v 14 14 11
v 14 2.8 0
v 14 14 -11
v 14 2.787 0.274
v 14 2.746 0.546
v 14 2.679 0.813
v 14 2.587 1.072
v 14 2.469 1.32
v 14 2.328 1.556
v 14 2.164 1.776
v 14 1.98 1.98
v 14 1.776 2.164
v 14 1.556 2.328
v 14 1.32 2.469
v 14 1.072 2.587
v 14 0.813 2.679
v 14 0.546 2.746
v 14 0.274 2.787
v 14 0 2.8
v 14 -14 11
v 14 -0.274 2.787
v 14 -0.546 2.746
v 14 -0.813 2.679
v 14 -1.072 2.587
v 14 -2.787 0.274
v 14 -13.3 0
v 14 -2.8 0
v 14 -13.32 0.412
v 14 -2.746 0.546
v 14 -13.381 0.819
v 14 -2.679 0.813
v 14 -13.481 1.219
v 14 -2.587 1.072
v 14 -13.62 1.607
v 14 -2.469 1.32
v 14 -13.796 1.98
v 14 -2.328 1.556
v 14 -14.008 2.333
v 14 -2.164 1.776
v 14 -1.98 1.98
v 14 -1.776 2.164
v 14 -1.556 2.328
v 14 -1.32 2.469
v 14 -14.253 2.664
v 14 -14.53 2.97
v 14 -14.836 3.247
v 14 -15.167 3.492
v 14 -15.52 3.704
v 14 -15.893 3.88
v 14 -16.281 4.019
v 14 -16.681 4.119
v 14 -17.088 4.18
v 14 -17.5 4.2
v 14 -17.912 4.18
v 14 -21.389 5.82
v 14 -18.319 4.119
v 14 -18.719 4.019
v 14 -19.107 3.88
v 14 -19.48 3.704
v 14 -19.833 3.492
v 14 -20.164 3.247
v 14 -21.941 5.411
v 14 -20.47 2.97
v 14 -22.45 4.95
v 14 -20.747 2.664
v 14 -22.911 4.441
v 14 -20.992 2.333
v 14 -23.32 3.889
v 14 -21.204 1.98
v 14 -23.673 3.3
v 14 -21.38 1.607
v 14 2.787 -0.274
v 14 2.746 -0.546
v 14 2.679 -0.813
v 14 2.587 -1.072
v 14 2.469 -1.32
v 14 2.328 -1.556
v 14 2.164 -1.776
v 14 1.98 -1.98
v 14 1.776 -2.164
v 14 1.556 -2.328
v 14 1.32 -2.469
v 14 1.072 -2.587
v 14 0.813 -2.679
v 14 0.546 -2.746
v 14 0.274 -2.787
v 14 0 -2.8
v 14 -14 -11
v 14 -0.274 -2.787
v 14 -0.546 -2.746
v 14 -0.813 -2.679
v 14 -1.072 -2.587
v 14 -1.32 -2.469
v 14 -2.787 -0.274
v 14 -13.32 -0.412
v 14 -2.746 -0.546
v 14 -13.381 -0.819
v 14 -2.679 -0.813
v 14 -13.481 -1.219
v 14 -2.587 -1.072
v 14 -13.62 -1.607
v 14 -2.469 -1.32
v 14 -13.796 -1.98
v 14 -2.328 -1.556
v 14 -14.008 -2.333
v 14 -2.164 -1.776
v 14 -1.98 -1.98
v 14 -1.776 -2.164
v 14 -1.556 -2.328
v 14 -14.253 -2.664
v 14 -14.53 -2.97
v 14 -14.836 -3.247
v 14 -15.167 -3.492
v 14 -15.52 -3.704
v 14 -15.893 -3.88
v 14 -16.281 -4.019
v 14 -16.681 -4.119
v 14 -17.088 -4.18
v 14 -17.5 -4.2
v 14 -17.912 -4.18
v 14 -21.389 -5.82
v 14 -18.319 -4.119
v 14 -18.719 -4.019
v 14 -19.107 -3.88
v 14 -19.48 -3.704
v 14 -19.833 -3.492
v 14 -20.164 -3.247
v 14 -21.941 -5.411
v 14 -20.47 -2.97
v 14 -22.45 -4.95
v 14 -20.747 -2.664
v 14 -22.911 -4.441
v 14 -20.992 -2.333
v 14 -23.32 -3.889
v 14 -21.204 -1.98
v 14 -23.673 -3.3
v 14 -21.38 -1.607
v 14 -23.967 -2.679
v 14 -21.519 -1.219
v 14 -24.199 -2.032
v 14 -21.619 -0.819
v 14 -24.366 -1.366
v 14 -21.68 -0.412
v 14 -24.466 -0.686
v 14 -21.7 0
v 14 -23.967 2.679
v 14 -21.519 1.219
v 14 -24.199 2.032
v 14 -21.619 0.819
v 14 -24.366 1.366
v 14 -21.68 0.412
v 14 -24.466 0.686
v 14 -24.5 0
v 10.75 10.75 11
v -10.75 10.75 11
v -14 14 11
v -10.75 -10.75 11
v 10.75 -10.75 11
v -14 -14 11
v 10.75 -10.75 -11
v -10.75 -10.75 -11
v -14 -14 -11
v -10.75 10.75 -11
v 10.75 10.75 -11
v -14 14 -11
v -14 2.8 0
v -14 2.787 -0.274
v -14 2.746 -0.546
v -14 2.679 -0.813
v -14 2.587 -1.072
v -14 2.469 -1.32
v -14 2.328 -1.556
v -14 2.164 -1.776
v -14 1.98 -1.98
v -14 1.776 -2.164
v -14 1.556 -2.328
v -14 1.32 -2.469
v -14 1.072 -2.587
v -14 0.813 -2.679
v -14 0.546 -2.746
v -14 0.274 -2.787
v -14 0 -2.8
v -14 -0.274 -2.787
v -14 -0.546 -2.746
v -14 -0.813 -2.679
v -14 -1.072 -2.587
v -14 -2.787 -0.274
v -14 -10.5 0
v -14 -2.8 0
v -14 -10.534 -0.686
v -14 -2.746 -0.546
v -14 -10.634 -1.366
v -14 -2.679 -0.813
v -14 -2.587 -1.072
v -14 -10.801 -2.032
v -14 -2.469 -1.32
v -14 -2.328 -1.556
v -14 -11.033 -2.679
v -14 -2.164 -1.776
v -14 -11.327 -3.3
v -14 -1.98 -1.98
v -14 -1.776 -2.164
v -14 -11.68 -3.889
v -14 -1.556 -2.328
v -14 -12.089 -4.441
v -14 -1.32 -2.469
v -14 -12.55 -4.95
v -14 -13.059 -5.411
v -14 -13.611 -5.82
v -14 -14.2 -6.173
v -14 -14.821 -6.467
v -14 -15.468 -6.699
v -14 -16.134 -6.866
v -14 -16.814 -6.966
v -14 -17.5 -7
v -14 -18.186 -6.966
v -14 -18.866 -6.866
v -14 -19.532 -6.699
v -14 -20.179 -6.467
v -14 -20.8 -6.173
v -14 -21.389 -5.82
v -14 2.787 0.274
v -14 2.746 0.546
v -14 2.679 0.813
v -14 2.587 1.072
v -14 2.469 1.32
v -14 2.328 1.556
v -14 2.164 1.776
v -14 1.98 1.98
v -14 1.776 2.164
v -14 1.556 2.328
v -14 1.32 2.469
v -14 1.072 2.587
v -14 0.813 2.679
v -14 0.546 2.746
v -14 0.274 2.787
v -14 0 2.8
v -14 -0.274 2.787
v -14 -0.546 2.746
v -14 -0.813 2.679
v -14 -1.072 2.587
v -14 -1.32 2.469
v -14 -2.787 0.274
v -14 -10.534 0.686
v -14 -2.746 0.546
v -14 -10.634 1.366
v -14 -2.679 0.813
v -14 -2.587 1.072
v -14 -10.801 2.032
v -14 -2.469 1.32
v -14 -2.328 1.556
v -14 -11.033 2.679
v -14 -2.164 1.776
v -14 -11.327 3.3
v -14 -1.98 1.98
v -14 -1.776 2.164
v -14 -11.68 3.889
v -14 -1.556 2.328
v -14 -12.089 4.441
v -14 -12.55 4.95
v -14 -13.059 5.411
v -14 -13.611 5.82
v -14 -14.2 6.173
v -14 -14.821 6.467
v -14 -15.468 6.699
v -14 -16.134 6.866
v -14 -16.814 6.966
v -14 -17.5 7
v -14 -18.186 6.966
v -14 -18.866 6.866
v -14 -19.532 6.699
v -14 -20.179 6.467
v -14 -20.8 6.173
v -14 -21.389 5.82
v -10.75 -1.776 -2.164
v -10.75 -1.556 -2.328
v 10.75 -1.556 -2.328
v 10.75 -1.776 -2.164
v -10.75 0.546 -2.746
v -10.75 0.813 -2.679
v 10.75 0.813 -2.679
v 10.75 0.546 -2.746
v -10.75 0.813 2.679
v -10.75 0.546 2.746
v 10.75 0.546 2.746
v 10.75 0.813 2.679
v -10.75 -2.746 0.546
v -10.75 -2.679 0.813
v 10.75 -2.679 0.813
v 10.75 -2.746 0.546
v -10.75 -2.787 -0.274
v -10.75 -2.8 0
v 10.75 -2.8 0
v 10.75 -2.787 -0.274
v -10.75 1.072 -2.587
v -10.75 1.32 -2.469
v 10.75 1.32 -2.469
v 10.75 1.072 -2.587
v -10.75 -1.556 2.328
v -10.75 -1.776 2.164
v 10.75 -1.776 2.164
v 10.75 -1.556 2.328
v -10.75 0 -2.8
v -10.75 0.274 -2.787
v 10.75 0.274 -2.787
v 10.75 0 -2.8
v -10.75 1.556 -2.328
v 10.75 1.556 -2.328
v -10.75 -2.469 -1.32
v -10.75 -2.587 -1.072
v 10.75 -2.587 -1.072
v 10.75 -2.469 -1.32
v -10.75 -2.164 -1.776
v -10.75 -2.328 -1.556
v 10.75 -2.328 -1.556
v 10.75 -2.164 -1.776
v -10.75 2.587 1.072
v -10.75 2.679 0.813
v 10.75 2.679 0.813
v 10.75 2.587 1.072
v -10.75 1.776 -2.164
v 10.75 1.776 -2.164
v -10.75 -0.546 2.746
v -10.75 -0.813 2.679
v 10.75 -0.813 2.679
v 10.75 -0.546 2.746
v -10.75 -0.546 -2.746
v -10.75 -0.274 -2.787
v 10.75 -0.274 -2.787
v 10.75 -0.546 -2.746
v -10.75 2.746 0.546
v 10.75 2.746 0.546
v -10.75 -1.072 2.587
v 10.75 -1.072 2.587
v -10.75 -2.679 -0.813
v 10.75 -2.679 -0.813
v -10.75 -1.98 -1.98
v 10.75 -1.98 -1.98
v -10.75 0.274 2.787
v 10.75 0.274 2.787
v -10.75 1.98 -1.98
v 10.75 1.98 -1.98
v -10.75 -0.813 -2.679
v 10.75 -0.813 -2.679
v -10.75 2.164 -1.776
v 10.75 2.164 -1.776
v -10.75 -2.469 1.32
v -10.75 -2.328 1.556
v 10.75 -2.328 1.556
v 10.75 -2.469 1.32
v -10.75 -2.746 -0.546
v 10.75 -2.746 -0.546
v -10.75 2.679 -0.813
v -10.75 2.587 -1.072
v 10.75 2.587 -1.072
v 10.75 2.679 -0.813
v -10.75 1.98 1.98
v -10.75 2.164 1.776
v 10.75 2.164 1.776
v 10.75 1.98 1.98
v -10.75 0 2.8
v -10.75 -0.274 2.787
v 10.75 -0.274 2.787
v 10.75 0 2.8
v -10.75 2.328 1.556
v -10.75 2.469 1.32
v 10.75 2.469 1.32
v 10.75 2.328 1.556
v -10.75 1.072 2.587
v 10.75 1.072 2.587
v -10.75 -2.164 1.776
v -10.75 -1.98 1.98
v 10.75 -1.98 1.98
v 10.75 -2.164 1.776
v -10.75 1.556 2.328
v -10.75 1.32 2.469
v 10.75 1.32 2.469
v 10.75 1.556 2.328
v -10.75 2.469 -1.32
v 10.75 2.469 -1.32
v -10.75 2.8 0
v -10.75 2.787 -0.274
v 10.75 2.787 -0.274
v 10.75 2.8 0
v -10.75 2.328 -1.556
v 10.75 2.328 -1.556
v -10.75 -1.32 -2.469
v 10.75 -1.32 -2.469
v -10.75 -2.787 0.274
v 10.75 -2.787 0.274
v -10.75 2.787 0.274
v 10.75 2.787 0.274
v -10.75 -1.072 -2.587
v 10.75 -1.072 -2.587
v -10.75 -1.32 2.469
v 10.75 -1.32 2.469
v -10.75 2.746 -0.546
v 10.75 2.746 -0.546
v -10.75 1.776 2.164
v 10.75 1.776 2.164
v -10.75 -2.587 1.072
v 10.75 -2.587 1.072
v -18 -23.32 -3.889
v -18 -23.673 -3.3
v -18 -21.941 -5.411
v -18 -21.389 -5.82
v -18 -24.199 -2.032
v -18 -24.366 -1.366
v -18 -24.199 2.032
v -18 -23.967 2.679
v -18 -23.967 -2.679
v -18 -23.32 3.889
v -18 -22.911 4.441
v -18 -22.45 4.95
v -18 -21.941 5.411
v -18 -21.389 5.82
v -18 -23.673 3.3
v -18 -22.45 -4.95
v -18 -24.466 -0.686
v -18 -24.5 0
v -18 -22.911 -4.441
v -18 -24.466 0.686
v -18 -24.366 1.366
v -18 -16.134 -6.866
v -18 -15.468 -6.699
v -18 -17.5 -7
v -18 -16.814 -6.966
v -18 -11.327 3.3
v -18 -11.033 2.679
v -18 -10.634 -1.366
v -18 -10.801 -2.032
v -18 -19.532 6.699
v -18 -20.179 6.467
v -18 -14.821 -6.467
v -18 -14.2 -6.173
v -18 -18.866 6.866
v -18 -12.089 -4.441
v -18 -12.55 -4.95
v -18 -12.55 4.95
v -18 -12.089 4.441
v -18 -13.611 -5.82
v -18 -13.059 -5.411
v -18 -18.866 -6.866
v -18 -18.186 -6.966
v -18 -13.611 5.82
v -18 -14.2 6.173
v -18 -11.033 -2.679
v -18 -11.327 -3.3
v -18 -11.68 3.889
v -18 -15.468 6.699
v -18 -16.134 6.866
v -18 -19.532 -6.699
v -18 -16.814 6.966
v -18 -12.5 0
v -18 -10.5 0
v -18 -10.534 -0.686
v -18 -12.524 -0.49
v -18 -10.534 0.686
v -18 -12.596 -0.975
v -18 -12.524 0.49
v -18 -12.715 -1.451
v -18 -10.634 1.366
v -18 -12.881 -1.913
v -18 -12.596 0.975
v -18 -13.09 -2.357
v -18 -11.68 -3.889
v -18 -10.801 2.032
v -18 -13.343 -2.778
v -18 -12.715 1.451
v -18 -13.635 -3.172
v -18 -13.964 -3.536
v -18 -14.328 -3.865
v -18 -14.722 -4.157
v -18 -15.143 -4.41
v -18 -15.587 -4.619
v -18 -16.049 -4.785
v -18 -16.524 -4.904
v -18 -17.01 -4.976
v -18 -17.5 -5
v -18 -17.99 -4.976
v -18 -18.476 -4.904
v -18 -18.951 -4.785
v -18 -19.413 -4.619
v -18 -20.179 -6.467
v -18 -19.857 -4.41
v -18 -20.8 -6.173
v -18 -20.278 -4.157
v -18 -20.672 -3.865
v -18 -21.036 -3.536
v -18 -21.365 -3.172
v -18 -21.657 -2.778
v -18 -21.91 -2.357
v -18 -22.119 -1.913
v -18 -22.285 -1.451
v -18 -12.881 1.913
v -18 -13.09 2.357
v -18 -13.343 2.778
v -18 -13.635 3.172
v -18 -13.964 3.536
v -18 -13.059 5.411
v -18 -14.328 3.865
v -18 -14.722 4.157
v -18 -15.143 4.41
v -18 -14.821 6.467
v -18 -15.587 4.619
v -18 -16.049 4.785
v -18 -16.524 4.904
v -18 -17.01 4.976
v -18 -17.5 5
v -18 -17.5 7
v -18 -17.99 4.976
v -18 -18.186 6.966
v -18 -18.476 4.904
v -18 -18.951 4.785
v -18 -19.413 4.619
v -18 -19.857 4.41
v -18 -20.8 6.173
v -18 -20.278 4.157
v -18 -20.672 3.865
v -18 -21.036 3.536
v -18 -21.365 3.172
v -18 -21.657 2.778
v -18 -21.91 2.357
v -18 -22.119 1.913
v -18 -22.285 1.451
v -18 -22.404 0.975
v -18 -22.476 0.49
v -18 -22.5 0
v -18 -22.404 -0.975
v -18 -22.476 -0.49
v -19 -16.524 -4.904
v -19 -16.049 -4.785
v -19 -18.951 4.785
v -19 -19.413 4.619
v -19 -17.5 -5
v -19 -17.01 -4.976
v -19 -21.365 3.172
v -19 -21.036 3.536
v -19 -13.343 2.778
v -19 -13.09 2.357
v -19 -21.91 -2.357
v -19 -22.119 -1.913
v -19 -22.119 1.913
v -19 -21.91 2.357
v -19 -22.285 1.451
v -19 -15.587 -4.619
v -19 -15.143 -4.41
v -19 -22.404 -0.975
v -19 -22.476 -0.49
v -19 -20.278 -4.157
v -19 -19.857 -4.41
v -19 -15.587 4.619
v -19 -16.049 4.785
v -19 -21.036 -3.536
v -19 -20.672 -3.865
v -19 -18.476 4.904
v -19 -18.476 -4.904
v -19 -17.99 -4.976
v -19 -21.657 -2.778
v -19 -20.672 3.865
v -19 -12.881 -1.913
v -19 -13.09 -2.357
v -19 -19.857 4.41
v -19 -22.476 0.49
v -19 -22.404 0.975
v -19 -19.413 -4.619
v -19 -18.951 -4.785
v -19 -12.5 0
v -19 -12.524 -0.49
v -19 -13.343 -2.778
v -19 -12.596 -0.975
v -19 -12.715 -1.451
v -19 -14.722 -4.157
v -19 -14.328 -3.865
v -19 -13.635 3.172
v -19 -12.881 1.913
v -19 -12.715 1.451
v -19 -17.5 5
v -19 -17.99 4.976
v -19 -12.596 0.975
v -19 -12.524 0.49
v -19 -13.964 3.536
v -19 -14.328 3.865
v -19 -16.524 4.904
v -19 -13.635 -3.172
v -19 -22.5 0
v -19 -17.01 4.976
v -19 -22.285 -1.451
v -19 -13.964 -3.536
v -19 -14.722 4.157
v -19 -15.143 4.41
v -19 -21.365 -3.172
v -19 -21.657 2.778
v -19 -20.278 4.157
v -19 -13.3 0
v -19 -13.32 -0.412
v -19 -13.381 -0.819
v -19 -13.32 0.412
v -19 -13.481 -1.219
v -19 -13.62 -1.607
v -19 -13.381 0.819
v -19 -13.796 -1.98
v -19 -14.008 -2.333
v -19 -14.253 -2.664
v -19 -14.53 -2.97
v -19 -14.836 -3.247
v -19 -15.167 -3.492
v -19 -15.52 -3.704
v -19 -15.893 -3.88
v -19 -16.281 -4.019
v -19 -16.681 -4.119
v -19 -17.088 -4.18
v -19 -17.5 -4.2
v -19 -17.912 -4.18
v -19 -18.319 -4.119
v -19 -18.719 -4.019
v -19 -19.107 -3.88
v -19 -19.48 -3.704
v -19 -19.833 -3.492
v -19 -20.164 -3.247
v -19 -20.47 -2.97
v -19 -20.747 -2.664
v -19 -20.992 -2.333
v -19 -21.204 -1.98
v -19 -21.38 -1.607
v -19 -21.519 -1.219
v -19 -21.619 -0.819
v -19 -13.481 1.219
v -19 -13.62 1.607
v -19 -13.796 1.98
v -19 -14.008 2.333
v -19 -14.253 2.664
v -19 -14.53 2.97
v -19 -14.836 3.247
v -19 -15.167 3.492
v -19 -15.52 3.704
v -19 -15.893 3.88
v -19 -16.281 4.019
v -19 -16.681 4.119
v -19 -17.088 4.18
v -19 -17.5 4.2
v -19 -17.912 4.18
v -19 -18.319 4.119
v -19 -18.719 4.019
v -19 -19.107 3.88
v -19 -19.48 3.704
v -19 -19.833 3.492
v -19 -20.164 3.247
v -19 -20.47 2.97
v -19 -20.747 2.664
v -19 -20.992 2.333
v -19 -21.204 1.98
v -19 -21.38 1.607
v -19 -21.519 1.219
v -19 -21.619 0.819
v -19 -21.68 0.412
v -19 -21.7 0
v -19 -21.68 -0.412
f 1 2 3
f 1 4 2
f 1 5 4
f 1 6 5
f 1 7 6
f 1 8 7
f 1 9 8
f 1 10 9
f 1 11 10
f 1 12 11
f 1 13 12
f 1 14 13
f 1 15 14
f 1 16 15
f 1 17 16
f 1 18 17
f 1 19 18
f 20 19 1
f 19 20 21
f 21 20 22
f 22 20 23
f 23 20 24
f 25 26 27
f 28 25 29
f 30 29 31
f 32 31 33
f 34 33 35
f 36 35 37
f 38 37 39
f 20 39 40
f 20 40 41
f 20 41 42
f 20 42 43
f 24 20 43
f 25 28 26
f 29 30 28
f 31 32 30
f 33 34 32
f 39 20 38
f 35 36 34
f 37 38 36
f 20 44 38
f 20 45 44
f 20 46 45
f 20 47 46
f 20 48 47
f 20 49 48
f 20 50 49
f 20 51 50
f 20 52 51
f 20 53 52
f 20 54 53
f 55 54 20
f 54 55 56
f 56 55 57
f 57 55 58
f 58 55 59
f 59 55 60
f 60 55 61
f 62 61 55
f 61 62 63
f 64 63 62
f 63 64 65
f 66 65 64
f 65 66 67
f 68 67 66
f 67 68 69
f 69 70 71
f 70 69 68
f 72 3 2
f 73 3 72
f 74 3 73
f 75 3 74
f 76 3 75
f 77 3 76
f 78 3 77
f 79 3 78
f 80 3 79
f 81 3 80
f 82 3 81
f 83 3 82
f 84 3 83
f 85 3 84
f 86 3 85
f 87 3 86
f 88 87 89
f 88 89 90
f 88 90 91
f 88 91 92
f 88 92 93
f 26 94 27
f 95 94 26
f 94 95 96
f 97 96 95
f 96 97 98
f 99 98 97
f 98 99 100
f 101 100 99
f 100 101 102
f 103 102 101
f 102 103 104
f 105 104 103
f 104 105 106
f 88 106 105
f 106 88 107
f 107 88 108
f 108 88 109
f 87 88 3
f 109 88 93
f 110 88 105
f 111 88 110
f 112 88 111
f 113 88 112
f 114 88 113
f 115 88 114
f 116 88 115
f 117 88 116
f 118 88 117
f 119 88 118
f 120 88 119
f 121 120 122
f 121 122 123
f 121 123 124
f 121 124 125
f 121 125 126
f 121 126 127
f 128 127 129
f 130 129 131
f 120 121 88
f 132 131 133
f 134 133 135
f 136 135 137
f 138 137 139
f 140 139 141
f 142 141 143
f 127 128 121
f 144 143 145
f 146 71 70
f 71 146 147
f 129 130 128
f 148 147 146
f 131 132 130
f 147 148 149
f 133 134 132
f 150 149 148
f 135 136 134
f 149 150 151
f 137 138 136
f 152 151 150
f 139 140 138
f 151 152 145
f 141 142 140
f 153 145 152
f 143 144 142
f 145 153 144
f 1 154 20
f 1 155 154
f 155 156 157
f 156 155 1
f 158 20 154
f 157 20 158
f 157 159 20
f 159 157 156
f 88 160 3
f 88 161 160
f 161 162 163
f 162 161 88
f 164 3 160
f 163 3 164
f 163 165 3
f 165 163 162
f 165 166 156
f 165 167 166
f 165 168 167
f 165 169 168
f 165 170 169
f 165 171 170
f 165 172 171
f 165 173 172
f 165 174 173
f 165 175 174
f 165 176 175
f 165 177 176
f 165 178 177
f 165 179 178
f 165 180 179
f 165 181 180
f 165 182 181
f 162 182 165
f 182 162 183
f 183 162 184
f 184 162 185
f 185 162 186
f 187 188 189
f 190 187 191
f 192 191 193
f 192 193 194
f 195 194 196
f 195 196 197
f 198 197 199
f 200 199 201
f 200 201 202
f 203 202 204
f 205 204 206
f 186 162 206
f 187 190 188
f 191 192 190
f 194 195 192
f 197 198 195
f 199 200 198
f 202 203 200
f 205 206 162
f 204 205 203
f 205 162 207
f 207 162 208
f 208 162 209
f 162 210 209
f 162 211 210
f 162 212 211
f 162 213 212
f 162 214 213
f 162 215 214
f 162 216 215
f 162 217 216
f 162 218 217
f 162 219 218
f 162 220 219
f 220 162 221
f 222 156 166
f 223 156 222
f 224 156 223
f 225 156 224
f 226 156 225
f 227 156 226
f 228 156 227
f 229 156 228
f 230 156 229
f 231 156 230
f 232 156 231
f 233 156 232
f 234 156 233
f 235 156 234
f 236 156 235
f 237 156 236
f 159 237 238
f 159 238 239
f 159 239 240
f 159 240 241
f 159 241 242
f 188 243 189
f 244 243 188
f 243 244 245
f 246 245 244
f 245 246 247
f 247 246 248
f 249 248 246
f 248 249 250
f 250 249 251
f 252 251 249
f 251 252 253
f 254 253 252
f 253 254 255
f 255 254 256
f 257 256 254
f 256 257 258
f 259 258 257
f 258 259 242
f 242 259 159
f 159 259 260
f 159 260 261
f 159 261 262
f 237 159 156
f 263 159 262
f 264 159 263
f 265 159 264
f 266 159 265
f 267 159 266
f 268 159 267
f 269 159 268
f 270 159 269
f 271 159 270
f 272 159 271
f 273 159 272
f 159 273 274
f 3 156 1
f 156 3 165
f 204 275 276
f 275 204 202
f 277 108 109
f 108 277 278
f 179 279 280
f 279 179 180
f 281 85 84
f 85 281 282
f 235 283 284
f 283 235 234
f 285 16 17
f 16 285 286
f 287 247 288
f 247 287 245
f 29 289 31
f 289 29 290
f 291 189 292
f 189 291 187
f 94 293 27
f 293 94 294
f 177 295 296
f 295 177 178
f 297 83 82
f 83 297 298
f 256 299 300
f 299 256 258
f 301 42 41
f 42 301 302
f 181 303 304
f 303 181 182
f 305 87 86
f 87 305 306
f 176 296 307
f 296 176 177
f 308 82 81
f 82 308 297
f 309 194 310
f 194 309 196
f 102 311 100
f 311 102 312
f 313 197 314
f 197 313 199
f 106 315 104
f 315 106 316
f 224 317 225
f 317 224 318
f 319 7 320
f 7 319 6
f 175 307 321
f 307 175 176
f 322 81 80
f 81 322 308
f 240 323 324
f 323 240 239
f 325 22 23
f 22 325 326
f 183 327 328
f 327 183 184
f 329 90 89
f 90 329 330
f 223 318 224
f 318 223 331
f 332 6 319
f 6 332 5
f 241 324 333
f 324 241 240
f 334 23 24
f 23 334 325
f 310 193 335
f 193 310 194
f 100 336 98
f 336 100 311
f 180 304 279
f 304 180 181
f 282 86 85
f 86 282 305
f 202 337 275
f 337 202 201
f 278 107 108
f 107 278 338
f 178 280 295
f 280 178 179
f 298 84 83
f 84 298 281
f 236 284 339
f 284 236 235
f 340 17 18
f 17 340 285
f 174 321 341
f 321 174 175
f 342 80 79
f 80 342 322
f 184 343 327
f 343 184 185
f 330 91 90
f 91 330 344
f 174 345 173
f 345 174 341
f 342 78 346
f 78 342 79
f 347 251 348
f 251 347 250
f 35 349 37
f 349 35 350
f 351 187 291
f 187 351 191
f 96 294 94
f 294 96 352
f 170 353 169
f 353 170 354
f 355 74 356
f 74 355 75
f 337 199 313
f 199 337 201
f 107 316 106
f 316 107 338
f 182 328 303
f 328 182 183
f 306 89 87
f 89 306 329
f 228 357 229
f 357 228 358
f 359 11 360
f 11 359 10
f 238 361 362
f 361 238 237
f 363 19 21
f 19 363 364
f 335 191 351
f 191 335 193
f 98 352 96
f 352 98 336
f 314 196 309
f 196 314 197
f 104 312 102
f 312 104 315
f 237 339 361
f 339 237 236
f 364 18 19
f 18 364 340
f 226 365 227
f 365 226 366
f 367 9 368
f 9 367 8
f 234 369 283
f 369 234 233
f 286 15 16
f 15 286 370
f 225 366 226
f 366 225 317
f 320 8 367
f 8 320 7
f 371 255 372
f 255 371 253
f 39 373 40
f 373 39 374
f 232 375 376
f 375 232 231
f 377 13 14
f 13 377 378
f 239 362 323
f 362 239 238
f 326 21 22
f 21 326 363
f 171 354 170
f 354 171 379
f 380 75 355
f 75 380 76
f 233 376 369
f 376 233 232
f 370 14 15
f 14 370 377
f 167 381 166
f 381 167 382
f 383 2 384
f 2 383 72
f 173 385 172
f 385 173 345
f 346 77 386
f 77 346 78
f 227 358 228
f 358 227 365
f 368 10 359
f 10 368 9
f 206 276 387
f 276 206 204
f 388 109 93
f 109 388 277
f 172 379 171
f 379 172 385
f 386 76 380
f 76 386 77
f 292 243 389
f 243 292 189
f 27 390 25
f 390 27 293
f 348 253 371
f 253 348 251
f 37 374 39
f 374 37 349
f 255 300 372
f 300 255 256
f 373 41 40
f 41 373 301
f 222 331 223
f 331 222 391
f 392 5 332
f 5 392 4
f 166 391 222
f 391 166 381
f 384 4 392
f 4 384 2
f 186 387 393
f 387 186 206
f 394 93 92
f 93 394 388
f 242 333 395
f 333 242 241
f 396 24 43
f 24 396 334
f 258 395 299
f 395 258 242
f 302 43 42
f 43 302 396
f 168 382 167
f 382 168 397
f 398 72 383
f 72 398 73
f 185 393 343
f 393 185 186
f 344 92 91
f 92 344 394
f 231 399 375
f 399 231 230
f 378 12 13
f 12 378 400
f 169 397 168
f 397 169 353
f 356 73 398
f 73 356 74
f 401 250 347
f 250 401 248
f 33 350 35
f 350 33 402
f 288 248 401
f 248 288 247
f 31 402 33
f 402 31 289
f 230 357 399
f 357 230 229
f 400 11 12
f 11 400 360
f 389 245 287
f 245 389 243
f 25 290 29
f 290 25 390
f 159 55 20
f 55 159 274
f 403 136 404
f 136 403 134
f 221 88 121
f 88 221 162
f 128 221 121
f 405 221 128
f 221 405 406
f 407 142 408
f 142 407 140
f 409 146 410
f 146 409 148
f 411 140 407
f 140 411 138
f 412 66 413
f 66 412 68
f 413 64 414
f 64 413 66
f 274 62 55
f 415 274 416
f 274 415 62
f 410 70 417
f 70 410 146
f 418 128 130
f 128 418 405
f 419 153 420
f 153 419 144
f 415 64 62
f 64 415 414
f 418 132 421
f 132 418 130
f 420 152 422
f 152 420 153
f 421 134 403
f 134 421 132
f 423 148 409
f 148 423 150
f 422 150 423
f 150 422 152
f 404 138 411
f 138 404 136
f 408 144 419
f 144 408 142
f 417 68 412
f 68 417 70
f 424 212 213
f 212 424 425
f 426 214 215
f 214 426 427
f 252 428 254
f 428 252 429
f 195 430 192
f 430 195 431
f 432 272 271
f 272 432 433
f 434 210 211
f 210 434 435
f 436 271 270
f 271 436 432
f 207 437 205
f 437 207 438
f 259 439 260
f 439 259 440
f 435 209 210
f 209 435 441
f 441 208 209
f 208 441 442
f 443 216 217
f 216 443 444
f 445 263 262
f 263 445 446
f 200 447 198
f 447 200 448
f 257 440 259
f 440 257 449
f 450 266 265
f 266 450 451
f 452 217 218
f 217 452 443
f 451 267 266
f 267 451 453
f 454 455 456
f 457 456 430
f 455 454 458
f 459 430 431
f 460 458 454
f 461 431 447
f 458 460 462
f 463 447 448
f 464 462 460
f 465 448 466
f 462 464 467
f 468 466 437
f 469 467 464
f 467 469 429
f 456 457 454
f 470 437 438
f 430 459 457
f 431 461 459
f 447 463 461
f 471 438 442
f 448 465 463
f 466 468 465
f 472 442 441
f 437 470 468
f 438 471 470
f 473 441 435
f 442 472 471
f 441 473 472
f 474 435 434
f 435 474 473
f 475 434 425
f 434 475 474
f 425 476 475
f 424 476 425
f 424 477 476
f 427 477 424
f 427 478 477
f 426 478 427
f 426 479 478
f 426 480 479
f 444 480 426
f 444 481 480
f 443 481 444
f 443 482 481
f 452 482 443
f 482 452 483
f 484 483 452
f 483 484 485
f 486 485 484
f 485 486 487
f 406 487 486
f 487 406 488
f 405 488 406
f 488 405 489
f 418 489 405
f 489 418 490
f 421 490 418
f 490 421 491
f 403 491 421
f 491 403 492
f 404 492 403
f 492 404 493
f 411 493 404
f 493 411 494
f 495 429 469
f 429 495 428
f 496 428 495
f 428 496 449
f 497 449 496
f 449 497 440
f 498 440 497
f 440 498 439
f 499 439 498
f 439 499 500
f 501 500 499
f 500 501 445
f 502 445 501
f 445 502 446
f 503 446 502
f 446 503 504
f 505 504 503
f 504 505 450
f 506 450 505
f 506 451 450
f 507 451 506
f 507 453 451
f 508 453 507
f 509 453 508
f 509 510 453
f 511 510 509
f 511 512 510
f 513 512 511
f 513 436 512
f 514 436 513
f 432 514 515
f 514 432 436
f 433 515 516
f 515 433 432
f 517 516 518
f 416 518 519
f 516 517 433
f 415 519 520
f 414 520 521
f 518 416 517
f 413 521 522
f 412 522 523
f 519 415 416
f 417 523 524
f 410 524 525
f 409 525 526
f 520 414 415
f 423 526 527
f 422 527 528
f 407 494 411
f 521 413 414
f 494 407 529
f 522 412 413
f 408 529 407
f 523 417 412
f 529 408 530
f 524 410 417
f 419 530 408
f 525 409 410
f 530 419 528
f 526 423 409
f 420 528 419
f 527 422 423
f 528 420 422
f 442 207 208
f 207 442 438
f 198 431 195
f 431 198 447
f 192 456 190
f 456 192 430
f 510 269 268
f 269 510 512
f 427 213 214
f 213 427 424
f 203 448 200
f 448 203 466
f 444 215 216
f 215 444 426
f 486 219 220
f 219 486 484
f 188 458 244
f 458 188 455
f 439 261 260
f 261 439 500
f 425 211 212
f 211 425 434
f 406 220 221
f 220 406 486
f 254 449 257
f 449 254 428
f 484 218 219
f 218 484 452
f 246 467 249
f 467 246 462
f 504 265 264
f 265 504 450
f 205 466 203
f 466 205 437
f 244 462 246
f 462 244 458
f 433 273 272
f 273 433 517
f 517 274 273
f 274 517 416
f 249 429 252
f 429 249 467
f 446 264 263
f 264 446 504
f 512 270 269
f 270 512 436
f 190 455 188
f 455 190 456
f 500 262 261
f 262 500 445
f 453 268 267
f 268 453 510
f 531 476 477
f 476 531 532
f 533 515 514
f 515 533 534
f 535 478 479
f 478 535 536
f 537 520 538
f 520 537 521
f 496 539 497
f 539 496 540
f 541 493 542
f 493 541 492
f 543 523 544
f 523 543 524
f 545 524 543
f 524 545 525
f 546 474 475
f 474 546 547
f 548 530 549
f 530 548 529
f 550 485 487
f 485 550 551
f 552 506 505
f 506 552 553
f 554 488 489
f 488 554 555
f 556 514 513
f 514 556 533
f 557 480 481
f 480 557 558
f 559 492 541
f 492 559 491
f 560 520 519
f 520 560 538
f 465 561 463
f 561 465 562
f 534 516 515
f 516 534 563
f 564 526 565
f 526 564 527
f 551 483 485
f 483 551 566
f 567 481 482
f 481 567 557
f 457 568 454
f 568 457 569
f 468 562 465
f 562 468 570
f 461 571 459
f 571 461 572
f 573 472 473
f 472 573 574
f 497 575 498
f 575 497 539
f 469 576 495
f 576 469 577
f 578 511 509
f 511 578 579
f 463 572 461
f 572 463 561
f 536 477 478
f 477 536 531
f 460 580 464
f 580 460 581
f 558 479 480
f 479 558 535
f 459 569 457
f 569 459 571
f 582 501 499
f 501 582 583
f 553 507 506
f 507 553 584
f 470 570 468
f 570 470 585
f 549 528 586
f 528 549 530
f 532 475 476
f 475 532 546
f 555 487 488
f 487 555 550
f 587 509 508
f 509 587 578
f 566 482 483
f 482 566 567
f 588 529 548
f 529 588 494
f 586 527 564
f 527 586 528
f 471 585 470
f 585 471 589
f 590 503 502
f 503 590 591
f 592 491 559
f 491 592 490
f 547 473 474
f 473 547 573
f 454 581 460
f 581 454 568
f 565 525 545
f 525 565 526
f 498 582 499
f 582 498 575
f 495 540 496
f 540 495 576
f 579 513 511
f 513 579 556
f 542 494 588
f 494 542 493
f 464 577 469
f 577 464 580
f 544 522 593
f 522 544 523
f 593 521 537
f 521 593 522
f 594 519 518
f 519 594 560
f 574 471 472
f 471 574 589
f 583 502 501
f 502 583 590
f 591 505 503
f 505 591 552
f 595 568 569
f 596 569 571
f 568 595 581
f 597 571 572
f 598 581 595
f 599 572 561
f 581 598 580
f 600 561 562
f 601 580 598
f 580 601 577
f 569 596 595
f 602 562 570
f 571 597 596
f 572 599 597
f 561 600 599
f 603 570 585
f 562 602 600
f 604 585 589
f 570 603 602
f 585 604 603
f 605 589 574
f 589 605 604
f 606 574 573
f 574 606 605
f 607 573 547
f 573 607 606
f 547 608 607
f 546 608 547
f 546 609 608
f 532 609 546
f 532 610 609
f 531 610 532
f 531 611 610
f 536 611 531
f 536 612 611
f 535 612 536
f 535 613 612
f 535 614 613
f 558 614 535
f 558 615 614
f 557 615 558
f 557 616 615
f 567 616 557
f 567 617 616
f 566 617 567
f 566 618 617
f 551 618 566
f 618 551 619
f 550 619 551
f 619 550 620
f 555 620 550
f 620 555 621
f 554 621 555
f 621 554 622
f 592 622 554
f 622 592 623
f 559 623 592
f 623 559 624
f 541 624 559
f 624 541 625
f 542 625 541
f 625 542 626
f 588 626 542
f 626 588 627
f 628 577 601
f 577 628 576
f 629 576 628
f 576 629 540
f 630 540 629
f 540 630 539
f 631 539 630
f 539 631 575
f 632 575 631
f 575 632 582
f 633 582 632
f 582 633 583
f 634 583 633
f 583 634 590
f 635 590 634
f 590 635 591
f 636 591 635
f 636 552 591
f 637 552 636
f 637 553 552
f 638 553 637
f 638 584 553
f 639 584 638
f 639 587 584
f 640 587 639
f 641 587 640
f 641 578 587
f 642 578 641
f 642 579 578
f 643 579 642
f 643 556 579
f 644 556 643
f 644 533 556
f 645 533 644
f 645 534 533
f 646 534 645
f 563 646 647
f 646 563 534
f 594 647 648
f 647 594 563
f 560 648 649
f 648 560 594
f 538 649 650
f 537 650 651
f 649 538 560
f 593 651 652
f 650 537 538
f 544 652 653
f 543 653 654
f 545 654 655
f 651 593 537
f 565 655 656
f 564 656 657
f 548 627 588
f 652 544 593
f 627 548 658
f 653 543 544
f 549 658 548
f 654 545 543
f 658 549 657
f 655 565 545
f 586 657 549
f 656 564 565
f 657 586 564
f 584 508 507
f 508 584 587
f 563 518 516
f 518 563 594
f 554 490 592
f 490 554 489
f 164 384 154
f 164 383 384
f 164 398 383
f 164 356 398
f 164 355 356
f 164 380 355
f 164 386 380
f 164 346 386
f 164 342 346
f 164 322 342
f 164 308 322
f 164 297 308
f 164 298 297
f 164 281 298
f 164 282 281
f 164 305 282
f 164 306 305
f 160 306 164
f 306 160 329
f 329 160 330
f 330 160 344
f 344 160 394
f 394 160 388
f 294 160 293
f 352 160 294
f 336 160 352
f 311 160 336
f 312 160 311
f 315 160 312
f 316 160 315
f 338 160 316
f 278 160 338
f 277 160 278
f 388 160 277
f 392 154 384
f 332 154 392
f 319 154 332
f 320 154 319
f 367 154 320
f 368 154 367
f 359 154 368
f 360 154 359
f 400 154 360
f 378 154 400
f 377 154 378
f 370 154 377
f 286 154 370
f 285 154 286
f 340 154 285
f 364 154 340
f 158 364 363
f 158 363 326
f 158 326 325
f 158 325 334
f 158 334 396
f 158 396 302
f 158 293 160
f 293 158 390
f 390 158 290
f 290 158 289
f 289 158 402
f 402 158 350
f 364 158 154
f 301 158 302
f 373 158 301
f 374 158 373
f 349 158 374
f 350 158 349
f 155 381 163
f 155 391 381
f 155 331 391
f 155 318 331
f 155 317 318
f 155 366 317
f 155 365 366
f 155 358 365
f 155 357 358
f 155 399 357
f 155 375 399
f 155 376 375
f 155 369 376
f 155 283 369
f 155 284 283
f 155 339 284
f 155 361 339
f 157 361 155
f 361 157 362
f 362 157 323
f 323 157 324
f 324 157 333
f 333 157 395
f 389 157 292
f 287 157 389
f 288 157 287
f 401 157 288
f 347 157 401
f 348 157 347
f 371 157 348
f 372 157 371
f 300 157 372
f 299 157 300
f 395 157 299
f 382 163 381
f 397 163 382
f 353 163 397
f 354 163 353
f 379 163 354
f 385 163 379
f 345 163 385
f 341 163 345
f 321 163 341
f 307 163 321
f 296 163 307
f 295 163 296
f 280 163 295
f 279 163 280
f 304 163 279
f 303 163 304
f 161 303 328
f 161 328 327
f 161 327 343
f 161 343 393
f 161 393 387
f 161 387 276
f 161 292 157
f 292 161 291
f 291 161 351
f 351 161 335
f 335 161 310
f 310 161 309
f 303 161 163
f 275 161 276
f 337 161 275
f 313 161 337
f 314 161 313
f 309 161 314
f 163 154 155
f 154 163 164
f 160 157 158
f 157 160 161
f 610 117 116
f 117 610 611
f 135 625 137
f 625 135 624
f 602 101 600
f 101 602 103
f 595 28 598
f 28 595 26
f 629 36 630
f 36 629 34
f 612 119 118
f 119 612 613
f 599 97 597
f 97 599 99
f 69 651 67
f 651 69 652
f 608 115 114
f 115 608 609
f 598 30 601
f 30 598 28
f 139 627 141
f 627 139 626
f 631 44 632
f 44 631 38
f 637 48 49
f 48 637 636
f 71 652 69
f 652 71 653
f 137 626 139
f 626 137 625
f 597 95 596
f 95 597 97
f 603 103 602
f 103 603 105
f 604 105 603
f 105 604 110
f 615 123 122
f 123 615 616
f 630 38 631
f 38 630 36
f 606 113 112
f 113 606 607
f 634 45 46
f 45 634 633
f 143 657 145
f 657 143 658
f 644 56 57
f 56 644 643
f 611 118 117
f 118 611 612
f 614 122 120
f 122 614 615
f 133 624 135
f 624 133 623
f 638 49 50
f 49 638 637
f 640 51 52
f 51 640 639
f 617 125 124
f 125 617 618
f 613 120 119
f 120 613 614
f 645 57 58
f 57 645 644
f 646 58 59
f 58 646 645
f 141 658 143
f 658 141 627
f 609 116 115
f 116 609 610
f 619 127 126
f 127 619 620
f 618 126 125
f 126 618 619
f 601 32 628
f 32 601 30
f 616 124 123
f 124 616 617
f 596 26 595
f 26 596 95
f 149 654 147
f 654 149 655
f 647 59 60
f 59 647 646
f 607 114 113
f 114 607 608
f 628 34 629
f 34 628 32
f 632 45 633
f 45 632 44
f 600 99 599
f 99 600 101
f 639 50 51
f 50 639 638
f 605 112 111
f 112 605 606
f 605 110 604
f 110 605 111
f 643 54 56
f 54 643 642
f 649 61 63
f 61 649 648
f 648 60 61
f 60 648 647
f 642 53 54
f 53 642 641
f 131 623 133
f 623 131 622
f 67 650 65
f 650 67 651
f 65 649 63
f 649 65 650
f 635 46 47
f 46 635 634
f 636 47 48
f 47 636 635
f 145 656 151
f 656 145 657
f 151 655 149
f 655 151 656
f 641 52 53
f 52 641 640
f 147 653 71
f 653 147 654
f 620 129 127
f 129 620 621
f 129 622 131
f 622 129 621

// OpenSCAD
difference(){
	union() {
		difference() {
			cube(center = true, size = [28, 28, 22]);
			rotate(a = [0, 90, 0]) {
				cylinder($fn = 64, center = true, h = 100, r = 2.8000000000);
			}
		}
		color(alpha = 1.0000000000, c = "blue") {
			translate(v = [0, -12.5000000000, 0]) {
				difference() {
					union() {
						hull() {
							cube(center = true, size = [28, 3, 22]);
							translate(v = [0, -5, 0]) {
								rotate(a = [0, 90, 0]) {
									cylinder($fn = 64, center = true, h = 28, r = 7);
								}
							}
						}
						translate(v = [-2, 0, 0]) {
							translate(v = [0, -5, 0]) {
								rotate(a = [0, 90, 0]) {
									cylinder($fn = 64, center = true, h = 32, r = 7);
								}
							}
						}
						translate(v = [-2.5000000000, 0, 0]) {
							translate(v = [0, -5, 0]) {
								rotate(a = [0, 90, 0]) {
									cylinder($fn = 64, center = true, h = 33, r = 5);
								}
							}
						}
					}
				}
			}
		}
	}
	/* Holes Below*/
	union(){
		union(){
			cube(center = true, size = [21.5000000000, 21.5000000000, 100]);
		}
		color(alpha = 1.0000000000, c = "blue"){
			translate(v = [0, -12.5000000000, 0]){
				union(){
					translate(v = [0, -5, 0]) {
						rotate(a = [0, 90, 0]) {
							cylinder($fn = 64, center = true, h = 100, r = 4.2000000000);
						}
					}
				}
			}
		}
	} /* End Holes */ 
}
